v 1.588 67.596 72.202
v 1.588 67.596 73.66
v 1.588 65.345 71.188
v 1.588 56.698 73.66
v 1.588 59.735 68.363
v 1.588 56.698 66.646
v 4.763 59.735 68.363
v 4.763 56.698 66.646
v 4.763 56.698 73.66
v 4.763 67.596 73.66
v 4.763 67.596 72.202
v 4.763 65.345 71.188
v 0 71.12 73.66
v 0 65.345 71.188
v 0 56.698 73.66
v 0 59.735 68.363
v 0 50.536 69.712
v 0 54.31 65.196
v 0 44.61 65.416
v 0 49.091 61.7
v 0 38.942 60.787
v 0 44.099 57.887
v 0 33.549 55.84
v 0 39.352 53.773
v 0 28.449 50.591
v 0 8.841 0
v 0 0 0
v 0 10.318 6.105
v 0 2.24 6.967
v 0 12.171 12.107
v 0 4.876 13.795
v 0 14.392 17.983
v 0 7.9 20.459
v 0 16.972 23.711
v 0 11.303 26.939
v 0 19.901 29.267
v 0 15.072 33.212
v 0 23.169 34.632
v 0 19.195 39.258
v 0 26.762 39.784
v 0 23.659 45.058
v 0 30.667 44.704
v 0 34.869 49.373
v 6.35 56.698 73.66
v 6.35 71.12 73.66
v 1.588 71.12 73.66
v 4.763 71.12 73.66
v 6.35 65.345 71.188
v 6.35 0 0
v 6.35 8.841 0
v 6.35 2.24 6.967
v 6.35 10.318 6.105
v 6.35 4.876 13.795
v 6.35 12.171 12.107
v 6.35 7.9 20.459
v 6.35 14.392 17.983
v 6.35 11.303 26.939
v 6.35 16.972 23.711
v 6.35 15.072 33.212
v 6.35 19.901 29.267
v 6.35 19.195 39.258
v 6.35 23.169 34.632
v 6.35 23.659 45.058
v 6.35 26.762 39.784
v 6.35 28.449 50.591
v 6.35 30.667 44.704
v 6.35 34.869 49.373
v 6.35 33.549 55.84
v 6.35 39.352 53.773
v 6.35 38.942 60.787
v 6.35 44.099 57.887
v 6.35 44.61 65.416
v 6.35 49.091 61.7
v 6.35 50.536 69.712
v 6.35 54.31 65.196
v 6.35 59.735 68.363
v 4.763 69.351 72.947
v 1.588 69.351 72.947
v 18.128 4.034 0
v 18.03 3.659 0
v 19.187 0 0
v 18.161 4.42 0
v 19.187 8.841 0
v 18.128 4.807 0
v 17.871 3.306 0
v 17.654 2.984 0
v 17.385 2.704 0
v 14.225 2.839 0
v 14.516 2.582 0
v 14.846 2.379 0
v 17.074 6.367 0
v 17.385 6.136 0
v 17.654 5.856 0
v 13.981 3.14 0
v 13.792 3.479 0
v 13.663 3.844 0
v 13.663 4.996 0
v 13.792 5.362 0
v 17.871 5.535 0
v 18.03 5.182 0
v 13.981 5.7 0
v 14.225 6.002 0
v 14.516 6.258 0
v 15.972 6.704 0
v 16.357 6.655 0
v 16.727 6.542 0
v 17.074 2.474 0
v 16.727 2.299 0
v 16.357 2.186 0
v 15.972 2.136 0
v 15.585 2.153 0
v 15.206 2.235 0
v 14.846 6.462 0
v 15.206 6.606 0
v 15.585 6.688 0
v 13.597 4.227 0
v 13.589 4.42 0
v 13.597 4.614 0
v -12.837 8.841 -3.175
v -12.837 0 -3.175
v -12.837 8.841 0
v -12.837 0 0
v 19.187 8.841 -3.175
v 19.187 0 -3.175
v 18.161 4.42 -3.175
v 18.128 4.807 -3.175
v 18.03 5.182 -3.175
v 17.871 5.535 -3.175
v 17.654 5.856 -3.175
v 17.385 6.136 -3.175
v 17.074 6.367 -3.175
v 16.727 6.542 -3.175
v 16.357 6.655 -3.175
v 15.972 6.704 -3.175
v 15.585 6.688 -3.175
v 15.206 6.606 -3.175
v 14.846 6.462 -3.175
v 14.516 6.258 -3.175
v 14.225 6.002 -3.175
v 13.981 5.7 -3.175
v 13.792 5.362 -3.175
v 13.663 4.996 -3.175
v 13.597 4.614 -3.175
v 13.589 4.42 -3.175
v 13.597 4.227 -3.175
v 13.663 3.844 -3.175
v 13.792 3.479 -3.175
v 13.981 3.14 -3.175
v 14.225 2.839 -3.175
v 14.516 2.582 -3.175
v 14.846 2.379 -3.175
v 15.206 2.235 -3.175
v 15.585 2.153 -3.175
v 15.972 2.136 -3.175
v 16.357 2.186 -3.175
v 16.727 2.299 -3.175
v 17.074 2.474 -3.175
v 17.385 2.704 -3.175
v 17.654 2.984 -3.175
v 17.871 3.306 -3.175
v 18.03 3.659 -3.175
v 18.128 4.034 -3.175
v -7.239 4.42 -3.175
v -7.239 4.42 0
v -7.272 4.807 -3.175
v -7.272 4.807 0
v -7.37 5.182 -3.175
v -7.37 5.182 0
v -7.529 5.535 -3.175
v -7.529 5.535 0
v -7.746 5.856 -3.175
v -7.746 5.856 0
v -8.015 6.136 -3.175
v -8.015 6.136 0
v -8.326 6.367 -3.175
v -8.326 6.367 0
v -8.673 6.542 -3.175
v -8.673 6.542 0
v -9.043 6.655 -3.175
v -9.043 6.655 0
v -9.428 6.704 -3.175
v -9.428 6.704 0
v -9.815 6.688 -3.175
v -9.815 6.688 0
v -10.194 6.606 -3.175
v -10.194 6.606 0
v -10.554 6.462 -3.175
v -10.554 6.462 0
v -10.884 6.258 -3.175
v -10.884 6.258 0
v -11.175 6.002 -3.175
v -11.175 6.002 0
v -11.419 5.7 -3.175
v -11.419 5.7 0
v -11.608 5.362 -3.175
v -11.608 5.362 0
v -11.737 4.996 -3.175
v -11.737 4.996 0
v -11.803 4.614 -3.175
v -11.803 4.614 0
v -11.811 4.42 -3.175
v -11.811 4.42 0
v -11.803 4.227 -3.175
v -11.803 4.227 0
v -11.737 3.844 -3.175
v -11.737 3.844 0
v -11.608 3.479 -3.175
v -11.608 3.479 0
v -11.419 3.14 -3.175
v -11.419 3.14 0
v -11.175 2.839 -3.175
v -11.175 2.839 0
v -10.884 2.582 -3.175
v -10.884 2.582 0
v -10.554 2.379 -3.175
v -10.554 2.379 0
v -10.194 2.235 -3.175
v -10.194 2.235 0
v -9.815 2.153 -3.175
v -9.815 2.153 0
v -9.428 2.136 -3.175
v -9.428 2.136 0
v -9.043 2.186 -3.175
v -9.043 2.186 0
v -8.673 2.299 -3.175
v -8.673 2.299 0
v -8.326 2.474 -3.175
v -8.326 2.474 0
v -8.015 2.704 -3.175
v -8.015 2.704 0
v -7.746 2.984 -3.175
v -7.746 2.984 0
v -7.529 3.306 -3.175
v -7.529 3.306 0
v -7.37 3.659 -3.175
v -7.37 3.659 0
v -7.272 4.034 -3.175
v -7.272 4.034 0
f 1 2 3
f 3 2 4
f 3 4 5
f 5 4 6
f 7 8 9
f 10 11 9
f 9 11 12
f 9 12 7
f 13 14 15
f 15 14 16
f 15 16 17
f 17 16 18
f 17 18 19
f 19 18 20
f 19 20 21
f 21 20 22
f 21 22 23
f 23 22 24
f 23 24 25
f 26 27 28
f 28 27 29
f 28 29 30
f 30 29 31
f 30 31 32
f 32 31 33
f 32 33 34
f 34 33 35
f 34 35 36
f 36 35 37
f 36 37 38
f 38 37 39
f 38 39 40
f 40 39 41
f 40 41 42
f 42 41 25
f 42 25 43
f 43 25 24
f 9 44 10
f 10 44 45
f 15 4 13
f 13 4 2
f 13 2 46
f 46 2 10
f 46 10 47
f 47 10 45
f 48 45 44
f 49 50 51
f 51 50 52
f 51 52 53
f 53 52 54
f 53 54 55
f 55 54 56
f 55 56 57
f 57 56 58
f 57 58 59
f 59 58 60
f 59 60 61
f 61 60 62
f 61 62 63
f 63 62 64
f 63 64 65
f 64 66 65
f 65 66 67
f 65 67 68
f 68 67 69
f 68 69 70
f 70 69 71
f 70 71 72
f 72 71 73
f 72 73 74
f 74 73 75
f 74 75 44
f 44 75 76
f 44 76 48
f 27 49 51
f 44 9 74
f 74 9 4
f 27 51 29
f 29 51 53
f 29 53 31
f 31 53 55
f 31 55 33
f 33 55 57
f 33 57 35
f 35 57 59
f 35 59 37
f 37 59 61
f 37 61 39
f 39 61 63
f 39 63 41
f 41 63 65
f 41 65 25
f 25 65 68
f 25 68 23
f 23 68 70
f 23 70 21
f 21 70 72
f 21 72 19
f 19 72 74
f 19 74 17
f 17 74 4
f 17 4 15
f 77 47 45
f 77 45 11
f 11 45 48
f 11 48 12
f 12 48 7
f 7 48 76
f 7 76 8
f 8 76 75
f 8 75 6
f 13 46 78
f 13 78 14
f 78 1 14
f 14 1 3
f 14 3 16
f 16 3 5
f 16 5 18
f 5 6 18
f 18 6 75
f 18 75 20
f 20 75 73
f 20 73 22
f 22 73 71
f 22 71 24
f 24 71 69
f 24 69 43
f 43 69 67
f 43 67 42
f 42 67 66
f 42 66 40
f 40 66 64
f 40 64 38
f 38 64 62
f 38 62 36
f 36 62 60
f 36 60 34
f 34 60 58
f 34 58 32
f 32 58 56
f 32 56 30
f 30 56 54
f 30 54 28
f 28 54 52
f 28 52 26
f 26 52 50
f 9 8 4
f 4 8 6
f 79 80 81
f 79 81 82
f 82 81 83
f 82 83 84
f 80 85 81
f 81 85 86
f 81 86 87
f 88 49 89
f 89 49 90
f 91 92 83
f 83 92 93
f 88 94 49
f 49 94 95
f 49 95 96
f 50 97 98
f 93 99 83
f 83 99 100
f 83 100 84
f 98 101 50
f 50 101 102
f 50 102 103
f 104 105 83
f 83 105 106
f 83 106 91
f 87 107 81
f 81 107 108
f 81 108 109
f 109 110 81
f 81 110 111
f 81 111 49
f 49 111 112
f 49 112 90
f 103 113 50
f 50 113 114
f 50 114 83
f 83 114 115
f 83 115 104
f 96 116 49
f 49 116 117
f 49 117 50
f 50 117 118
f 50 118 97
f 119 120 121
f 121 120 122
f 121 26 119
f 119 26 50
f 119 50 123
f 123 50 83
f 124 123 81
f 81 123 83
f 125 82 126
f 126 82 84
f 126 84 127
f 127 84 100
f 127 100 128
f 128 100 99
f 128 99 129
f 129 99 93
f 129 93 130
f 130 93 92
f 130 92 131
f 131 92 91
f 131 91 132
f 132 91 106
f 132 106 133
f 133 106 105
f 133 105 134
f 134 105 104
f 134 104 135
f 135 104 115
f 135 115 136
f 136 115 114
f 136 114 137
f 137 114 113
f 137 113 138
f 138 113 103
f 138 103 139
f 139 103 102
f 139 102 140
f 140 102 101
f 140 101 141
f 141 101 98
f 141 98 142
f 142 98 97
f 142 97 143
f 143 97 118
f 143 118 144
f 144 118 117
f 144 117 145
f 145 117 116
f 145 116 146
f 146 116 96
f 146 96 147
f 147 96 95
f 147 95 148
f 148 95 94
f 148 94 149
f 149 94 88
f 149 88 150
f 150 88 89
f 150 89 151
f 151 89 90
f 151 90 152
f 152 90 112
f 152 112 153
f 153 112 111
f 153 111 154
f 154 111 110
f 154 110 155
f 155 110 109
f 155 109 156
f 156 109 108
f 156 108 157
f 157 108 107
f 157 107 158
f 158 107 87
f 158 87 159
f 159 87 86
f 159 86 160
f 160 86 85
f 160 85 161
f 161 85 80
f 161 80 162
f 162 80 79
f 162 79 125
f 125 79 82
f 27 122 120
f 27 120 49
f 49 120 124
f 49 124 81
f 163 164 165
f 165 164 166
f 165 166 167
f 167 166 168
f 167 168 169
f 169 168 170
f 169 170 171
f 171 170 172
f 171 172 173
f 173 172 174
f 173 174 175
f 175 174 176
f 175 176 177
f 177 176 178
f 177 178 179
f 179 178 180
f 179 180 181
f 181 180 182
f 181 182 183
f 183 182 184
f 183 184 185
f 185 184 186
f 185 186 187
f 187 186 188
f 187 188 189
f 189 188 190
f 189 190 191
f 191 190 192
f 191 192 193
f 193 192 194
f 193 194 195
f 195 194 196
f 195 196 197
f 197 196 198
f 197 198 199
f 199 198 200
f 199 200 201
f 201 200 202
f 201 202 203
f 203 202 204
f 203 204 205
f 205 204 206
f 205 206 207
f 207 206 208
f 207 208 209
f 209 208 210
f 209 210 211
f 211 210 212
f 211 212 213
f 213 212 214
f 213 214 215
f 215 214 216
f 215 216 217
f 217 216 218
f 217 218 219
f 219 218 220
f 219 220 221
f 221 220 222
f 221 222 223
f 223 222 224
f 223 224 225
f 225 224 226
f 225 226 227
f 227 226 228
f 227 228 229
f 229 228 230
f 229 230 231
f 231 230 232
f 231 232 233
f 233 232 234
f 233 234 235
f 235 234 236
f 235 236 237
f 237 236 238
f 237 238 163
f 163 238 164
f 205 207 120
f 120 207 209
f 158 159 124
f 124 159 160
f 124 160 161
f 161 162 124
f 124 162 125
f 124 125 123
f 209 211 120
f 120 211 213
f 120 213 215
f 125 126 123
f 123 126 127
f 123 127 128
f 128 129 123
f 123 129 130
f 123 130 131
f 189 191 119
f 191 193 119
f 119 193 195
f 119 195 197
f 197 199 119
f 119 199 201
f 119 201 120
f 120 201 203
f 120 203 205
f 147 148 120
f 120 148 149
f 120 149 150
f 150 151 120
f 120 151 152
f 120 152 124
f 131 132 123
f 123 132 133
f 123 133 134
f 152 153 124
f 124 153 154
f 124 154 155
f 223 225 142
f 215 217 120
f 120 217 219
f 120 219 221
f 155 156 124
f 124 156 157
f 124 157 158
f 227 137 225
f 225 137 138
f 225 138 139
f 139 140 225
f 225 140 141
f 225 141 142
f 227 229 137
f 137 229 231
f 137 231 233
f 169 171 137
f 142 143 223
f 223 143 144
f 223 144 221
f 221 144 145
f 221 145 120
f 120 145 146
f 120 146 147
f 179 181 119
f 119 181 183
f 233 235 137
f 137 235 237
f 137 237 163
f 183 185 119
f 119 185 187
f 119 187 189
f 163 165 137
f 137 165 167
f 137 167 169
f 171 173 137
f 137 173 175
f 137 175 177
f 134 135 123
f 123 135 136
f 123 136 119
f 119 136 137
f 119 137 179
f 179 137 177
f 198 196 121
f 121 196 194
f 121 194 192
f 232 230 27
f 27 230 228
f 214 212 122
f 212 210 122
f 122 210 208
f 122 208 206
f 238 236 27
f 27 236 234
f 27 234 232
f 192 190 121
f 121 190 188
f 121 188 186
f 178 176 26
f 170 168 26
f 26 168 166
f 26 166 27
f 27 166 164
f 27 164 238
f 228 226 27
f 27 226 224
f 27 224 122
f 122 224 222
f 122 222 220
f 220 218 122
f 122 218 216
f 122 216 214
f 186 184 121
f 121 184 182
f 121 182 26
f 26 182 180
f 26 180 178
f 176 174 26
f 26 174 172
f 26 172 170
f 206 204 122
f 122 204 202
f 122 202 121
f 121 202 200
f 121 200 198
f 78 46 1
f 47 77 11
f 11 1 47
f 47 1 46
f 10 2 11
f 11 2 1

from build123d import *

# Parameters (mm, degrees)
SKETCH2_W           = 6.35
SKETCH2_H           = 73.66
BOSS_EXTRUDE1_DEPTH = 71.12
CUT_EXTRUDE1_DEPTH  = 71.12
SKETCH4_W           = 1.5875
SKETCH4_H           = 14.422052326
CUT_EXTRUDE2_DEPTH  = 71.12
SKETCH6_W           = 32.023370344
SKETCH6_H           = 8.840748178
SKETCH6_R           = 2.286
BOSS_EXTRUDE2_DEPTH = 3.175
BOSS_EXTRUDE3_DEPTH = 3.175


with BuildPart() as part:
    # Sketch2 → Boss-Extrude1 (new body)
    with BuildSketch(Plane(origin=(0, 0, 0), x_dir=(1, 0, 0), z_dir=(0, 1, 0))):
        with Locations((3.175, -36.83)):
            Rectangle(SKETCH2_W, SKETCH2_H)
    extrude(amount=BOSS_EXTRUDE1_DEPTH)

    # Sketch3 → Cut-Extrude1 (cut)
    with BuildSketch(Plane(origin=(6.35, 0, 0), x_dir=(0, 0, -1), z_dir=(1, 0, 0))):
        with BuildLine():
            ThreePointArc((0, 0), (-42.190194821, 21.385195311), (-73.66, 56.697947674))
            Line((-73.66, 56.697947674), (-73.66, 0))
            Line((-73.66, 0), (0, 0))
        make_face()
        with BuildLine():
            Line((0, 71.12), (-73.66, 71.12))
            ThreePointArc((-73.66, 71.12), (-44.704376489, 30.667054561), (0, 8.840748178))
            Line((0, 8.840748178), (0, 71.12))
        make_face()
    extrude(amount=-CUT_EXTRUDE1_DEPTH, mode=Mode.SUBTRACT)

    # Sketch4 → Cut-Extrude2 (cut)
    with BuildSketch(Plane.XY.offset(73.66)):
        with Locations((2.38125, 63.908973837)):
            Rectangle(SKETCH4_W, SKETCH4_H)
        with Locations((3.96875, 63.908973837)):
            Rectangle(SKETCH4_W, SKETCH4_H)
    extrude(amount=-CUT_EXTRUDE2_DEPTH, mode=Mode.SUBTRACT)

    # Sketch6 → Boss-Extrude2 (add)
    with BuildSketch(Plane(origin=(0, 0, 0), x_dir=(-1, 0, 0), z_dir=(0, 0, -1))):
        with Locations((-3.175, 4.420374089)):
            Rectangle(SKETCH6_W, SKETCH6_H)
        with Locations((-15.875, 4.420374089)):
            Circle(SKETCH6_R, mode=Mode.SUBTRACT)
        with Locations((9.525, 4.420374089)):
            Circle(SKETCH6_R, mode=Mode.SUBTRACT)
    extrude(amount=BOSS_EXTRUDE2_DEPTH)

    # Sketch7 → Boss-Extrude3 (add)
    with BuildSketch(Plane(origin=(1.5875, 0, 0), x_dir=(0, 0, -1), z_dir=(1, 0, 0))):
        Polygon((-73.66, 67.596150372), (-72.201792637, 67.596150372), (-73.66, 71.12), align=None)
    extrude(amount=BOSS_EXTRUDE3_DEPTH)


solid = part.part
